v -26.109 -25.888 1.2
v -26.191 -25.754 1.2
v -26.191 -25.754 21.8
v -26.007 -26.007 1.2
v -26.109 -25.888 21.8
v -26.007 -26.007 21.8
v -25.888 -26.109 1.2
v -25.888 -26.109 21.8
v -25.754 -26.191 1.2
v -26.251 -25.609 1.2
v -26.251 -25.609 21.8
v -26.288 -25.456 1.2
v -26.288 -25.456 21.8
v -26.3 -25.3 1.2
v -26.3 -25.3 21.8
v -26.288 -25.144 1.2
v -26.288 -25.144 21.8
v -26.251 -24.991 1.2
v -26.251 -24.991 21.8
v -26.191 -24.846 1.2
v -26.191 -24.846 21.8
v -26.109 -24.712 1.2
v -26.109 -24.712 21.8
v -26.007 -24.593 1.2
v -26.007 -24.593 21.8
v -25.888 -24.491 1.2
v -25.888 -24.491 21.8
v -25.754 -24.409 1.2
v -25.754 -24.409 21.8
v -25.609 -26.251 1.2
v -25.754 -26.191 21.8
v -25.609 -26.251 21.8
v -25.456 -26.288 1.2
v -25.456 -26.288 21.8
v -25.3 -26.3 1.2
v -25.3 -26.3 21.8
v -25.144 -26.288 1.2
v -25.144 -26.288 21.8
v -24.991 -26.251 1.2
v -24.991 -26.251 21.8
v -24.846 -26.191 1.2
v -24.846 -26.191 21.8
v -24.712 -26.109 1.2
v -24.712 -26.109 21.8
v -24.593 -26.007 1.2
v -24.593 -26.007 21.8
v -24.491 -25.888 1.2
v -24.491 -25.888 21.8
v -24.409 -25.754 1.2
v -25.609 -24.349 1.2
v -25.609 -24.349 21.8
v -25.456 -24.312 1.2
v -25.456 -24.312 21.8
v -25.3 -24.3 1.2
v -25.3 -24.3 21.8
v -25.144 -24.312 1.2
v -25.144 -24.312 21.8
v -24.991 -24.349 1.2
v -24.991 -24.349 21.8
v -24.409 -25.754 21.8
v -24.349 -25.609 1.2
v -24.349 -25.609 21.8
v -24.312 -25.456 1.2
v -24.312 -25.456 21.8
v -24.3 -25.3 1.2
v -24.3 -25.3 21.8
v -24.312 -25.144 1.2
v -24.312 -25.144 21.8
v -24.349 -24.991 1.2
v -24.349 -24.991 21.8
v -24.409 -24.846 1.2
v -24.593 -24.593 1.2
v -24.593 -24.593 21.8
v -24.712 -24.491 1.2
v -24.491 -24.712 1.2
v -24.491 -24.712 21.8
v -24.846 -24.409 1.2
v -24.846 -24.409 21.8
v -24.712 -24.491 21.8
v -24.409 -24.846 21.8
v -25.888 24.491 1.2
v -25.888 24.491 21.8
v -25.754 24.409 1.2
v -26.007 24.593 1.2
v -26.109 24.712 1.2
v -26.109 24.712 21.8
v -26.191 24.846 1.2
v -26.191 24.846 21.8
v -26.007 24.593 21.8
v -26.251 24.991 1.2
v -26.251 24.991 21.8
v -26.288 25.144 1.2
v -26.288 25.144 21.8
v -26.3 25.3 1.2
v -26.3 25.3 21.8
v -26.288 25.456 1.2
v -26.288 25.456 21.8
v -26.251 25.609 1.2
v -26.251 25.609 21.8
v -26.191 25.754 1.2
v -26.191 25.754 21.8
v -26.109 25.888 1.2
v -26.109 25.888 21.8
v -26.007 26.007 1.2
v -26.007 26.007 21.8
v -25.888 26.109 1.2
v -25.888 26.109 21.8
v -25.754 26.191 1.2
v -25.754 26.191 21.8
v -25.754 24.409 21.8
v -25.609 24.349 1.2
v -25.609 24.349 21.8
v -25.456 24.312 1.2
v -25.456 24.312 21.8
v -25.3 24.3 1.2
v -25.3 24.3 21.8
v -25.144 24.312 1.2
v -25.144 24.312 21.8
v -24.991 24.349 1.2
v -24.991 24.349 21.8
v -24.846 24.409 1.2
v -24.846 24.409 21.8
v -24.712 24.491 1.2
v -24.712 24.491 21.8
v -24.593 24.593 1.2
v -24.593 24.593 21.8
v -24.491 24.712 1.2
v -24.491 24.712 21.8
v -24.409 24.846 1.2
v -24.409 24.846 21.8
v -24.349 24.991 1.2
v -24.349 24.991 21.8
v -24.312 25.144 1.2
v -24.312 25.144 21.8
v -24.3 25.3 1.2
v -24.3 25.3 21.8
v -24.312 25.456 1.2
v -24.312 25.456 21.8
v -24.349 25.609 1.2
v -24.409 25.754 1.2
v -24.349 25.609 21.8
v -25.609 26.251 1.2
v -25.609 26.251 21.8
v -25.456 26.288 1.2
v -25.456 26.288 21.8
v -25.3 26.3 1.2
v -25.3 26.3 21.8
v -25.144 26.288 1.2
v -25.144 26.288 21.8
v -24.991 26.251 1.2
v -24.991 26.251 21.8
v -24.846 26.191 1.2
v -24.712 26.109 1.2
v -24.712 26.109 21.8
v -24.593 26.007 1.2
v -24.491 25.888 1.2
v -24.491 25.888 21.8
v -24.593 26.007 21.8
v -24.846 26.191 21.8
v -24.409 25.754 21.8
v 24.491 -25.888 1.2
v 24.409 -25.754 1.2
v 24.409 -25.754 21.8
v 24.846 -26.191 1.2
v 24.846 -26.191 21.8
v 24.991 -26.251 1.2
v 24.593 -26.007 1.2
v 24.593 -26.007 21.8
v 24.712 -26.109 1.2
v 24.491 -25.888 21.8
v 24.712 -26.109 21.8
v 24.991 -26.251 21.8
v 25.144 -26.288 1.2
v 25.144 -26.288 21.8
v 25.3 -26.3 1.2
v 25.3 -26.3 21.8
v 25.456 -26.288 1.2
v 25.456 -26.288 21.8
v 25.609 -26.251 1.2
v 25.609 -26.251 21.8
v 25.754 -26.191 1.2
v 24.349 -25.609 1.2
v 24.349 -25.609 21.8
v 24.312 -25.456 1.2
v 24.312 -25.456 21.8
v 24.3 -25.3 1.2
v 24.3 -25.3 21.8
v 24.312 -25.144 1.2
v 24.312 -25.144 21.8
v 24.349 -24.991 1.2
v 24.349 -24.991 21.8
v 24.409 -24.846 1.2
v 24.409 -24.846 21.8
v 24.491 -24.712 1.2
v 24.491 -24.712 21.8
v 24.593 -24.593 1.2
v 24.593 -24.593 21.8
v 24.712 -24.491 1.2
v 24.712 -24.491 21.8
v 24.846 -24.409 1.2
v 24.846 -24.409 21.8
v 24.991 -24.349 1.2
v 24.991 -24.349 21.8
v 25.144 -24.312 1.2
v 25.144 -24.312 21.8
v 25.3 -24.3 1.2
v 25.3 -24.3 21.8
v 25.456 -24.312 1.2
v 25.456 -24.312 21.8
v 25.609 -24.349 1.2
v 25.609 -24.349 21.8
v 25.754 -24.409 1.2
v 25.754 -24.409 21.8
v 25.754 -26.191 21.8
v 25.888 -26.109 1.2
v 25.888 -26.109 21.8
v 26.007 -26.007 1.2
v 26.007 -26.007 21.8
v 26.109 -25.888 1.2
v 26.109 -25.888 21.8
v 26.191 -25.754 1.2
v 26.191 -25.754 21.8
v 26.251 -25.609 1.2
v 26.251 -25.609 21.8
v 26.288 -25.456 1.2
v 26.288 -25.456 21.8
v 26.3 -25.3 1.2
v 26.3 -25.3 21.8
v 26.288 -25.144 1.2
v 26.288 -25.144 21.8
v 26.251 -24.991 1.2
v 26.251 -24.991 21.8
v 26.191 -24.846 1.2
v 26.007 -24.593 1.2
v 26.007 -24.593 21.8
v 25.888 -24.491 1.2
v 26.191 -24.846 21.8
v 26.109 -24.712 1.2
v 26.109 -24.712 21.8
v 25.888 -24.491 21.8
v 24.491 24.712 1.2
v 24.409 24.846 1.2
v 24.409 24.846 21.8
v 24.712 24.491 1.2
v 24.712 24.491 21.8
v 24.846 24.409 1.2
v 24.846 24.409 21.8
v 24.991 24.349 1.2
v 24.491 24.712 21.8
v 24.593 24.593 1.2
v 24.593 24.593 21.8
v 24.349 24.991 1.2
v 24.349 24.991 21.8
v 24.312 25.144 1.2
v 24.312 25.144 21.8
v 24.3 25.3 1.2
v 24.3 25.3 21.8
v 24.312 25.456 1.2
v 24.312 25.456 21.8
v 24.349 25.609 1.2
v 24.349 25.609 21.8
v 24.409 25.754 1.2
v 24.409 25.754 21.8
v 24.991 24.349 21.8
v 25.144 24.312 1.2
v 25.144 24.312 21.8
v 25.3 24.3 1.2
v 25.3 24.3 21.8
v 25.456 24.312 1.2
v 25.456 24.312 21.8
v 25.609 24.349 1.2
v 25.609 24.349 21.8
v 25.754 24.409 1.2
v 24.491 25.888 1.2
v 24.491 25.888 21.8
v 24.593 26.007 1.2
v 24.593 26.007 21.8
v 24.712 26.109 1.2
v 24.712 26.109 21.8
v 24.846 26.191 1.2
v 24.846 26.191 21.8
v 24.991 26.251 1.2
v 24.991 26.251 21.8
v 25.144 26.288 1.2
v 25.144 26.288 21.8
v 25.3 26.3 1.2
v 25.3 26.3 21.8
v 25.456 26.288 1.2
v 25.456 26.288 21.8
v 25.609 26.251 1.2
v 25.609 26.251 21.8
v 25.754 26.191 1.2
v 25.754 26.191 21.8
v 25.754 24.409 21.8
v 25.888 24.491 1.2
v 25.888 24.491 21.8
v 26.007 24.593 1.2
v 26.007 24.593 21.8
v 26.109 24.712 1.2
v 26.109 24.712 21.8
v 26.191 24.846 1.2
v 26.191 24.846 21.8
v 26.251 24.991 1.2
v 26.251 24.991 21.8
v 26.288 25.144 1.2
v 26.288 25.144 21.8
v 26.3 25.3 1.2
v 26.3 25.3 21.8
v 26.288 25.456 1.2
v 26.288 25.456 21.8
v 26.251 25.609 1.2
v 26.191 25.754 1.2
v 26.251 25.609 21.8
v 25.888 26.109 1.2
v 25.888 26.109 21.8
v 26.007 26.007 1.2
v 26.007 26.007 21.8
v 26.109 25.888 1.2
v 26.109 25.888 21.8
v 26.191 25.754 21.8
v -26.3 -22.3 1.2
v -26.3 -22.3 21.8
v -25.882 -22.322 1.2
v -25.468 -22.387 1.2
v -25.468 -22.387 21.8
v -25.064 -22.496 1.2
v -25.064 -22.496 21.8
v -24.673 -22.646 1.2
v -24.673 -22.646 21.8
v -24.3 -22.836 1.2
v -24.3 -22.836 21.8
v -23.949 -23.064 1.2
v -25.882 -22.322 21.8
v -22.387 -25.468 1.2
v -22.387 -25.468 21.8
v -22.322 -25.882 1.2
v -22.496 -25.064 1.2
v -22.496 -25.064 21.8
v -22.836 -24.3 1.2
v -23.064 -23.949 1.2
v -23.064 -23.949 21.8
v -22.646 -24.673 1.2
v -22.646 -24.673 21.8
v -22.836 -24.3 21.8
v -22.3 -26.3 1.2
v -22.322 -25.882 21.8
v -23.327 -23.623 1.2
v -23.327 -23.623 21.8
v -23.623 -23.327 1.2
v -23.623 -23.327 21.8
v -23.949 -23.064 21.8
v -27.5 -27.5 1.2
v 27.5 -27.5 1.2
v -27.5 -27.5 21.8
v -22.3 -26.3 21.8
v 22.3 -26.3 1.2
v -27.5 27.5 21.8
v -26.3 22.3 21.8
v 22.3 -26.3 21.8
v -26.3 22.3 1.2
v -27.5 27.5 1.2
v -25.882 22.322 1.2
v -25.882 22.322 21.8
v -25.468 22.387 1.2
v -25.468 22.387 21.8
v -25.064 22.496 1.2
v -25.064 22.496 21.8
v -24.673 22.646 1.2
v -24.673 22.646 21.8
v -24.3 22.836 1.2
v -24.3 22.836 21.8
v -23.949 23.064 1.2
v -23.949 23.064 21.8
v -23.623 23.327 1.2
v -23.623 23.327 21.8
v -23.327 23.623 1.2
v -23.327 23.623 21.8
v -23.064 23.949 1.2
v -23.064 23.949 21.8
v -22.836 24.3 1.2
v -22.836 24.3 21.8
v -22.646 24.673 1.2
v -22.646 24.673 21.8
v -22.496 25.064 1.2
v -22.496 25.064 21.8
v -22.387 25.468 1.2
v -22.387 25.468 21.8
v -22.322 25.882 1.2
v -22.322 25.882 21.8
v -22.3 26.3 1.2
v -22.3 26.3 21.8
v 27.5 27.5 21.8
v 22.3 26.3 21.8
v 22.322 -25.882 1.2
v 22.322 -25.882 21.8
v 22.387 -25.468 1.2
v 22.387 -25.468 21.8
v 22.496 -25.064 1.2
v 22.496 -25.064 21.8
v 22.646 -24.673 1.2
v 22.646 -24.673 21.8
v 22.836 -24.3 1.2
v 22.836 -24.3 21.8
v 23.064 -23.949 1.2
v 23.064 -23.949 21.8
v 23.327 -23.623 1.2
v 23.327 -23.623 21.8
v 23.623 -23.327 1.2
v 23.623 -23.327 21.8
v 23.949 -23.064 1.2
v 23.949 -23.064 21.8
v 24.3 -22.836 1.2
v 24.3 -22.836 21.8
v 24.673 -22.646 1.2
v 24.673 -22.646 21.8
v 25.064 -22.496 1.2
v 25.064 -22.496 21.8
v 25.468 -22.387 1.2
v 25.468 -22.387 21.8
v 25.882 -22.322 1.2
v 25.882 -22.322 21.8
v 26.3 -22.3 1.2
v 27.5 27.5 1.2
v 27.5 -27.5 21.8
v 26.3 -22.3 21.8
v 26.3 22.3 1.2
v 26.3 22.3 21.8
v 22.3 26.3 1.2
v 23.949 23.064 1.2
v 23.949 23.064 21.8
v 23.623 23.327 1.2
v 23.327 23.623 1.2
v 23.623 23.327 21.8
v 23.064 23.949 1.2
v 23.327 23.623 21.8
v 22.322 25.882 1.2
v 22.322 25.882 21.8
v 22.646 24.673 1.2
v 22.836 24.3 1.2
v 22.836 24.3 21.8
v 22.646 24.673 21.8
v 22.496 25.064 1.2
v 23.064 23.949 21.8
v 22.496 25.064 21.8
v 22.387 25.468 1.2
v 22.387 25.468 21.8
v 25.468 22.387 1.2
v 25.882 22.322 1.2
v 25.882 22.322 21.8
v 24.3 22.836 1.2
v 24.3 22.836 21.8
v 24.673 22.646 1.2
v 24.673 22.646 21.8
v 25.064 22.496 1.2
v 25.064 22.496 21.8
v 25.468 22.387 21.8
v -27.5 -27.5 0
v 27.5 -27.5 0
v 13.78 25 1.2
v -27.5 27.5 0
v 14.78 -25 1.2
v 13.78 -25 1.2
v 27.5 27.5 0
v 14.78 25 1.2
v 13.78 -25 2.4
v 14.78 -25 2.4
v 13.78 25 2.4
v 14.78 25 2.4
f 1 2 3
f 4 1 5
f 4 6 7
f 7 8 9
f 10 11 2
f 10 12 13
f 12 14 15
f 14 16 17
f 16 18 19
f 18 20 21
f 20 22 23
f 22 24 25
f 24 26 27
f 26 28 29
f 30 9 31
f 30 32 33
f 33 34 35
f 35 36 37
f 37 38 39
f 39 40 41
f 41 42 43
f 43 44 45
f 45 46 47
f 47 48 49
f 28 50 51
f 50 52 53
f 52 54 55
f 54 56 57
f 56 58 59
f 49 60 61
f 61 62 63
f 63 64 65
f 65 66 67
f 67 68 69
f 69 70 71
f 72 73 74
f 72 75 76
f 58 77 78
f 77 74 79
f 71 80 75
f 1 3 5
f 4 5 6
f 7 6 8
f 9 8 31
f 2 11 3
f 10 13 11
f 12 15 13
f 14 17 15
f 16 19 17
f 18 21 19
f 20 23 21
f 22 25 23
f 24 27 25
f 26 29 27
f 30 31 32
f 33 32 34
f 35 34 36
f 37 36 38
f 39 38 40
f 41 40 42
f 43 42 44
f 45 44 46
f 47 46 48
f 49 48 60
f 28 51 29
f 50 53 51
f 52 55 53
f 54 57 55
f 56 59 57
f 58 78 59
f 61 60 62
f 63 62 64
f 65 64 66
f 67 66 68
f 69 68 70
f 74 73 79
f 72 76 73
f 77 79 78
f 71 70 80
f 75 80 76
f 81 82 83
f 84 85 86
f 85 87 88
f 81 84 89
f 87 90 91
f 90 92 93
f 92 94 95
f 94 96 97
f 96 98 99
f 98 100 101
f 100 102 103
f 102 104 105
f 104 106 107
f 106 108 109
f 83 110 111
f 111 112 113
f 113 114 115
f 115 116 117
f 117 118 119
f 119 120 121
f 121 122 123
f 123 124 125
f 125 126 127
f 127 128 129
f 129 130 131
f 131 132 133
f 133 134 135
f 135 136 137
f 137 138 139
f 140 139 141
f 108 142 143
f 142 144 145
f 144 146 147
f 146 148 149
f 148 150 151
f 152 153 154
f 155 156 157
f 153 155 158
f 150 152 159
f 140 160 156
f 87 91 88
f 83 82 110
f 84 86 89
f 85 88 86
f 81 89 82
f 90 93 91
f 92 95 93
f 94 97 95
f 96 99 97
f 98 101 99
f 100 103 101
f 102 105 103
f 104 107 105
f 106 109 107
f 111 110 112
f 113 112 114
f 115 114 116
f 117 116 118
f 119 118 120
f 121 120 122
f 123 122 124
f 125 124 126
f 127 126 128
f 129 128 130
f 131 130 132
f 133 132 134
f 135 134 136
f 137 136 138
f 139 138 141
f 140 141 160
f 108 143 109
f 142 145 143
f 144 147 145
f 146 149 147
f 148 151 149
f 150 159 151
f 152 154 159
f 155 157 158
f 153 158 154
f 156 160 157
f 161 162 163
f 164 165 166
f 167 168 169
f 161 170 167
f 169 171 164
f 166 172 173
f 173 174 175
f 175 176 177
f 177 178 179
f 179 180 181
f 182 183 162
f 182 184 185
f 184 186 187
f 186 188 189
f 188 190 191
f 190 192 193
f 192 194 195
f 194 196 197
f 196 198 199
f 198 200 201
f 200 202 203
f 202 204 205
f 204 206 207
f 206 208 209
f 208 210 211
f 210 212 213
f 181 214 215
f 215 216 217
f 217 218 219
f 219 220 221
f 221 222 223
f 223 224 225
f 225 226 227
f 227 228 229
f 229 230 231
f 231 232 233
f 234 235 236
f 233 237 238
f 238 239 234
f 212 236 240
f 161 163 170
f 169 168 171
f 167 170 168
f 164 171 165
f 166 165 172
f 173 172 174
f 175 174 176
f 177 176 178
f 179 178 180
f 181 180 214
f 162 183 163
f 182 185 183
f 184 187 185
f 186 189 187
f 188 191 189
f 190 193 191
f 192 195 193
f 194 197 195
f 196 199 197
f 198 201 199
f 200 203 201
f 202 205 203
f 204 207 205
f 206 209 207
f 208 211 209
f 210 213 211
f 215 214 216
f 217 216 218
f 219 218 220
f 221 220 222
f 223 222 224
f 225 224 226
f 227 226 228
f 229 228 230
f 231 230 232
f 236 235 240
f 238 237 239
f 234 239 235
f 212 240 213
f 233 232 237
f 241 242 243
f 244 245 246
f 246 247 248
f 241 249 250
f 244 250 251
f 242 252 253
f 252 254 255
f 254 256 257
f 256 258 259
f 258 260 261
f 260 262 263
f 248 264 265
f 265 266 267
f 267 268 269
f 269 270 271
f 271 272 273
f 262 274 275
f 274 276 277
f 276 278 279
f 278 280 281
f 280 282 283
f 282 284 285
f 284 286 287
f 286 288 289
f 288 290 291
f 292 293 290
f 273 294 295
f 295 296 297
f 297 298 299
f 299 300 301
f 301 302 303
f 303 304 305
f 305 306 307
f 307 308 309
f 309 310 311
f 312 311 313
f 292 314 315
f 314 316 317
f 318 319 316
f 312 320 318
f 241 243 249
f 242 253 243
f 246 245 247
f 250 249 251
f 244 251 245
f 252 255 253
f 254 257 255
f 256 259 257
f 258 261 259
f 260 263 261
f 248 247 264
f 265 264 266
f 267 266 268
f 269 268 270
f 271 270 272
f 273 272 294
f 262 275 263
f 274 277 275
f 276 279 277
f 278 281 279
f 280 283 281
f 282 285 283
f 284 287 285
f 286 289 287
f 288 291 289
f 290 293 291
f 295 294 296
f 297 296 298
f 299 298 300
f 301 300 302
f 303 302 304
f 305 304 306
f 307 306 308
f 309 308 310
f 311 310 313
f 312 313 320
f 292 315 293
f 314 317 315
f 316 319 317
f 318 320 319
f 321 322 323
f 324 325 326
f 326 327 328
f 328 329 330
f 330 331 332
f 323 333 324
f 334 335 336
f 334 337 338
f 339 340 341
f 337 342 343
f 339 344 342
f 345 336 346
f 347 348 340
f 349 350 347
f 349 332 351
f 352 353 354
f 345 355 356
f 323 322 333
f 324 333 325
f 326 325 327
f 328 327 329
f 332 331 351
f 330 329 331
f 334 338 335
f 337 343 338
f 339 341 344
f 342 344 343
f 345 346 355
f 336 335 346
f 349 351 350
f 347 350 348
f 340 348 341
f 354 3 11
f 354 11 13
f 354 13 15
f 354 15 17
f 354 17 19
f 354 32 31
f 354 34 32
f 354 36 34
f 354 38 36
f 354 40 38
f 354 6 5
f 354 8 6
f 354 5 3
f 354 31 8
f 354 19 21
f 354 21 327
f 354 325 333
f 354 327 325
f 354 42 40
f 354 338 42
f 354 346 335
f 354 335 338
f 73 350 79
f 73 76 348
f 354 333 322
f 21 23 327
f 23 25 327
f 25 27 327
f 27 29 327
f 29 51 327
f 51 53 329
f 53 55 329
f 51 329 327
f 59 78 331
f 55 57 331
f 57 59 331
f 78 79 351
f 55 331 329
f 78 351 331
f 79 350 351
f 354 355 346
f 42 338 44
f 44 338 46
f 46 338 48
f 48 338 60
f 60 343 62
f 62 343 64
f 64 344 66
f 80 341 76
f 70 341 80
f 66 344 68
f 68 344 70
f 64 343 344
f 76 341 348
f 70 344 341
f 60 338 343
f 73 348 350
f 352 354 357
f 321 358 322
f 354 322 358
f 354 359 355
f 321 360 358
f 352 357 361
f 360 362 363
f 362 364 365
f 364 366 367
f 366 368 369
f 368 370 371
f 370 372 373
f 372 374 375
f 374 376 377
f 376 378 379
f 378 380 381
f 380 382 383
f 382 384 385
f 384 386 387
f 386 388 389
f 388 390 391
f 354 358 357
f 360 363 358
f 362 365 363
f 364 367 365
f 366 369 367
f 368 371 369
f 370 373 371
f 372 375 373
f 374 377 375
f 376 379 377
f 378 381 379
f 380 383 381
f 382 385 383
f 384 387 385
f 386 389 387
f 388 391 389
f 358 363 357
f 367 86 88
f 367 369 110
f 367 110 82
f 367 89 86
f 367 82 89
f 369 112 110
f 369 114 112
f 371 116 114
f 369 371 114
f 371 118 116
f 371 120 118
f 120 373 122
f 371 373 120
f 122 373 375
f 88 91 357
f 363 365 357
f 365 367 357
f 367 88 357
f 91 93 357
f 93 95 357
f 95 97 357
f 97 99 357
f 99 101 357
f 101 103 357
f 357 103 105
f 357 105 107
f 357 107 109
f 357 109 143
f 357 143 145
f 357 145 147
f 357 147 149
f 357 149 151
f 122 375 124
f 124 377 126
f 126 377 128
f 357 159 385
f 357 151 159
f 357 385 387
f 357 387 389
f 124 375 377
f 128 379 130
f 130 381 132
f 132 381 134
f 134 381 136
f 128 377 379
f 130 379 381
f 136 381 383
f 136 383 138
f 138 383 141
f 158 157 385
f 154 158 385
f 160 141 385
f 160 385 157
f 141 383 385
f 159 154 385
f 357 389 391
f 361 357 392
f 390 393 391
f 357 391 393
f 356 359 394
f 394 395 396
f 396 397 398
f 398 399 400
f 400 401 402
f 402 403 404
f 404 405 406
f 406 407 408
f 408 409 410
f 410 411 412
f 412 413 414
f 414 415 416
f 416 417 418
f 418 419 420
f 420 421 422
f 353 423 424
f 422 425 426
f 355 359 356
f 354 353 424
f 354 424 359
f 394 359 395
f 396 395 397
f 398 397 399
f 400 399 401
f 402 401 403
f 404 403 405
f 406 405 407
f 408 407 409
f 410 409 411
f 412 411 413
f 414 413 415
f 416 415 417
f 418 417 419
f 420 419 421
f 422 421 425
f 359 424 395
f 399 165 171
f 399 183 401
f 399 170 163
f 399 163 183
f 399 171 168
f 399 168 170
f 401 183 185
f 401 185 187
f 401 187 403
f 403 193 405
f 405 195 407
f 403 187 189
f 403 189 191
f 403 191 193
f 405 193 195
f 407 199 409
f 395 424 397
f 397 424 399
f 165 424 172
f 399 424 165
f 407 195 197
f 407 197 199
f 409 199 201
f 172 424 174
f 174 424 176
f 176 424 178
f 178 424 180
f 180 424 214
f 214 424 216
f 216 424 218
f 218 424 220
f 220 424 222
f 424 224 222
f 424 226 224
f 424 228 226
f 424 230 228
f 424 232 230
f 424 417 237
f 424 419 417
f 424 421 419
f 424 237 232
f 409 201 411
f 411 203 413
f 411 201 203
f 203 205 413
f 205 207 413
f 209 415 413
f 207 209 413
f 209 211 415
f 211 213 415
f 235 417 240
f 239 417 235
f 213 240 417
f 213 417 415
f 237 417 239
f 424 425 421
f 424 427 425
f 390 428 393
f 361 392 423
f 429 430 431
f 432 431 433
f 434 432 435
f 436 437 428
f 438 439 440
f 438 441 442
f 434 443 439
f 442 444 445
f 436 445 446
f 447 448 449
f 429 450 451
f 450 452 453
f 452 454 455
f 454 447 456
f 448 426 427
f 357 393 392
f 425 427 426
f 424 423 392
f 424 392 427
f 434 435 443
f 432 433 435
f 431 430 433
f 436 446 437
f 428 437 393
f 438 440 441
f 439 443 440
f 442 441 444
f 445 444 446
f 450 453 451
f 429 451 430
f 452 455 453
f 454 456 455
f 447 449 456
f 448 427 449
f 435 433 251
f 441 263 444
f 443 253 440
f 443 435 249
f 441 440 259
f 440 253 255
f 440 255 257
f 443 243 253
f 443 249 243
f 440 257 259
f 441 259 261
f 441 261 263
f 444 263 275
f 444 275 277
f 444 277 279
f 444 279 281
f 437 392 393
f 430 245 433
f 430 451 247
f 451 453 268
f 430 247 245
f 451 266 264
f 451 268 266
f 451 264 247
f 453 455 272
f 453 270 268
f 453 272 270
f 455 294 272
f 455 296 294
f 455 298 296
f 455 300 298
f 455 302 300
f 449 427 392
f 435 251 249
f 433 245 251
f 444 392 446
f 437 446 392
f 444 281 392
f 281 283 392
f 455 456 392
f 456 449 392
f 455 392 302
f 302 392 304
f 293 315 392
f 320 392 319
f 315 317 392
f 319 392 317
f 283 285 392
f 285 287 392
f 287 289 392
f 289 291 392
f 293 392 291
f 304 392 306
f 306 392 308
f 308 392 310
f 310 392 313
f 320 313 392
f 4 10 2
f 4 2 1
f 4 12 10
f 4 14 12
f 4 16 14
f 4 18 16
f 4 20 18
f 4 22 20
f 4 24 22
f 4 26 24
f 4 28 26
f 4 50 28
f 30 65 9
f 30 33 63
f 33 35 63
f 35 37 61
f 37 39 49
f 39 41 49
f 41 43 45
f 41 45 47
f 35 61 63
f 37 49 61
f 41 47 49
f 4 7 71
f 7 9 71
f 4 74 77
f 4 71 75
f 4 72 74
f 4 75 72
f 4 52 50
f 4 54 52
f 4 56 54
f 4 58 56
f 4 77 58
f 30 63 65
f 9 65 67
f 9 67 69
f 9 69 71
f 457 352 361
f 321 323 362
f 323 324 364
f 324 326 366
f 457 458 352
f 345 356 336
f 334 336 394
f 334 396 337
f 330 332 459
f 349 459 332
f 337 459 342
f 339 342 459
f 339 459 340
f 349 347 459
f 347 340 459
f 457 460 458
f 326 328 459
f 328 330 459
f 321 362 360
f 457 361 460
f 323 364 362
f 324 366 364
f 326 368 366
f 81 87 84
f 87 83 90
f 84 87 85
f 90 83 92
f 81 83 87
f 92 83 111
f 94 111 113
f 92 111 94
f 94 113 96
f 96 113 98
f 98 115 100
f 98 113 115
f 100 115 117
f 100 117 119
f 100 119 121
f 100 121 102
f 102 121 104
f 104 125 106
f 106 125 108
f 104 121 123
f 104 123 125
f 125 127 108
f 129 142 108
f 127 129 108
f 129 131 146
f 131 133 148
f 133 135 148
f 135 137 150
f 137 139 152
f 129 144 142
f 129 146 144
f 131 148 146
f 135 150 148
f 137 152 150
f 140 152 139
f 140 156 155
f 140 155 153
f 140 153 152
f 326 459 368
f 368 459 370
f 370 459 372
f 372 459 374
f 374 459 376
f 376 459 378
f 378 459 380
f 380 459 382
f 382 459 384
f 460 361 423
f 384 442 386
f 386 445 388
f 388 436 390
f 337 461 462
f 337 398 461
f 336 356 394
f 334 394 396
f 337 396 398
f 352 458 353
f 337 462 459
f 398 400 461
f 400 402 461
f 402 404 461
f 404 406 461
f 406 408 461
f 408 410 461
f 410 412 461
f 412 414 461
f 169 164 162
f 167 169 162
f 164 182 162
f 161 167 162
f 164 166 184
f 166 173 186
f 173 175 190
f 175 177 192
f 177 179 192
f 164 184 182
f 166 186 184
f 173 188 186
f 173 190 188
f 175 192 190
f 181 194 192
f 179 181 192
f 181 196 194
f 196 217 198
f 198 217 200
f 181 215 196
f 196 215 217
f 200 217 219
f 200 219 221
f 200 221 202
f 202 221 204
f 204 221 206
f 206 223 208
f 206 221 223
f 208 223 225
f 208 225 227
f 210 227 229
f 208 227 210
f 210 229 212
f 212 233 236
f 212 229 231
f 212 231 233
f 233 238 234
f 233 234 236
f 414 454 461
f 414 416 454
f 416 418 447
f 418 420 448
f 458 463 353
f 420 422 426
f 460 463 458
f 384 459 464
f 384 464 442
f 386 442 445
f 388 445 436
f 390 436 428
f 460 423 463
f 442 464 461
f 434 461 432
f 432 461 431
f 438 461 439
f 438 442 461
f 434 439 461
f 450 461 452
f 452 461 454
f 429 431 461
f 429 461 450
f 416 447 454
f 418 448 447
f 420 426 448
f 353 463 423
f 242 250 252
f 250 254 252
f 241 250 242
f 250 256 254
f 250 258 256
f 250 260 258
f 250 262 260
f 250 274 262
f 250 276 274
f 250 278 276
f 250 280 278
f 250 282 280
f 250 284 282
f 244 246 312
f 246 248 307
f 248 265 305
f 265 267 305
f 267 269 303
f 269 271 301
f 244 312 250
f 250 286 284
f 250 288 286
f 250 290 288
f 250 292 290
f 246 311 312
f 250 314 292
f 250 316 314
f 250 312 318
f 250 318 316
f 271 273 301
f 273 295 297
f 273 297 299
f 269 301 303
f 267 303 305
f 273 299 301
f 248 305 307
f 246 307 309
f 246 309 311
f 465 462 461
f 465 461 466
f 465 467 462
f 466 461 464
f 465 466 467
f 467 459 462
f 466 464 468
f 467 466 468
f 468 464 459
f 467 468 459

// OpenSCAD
// ============================================================
// 플랫폼 v2 - 밑면 평면도(XY, 위에서 본 모습)
// 55mm x 55mm 정사각형, 사방 1.2mm 테두리, 안쪽에 세로 립(1mm 두께) 배치.
// ============================================================

module platform_v2_bottom() {
    face_size = 55;   // 면의 가로/세로 (정사각형)
    housing_t = 1.2;  // 하우징 두께 (사방 테두리)

    rib_w      = 1;      // 세로 립 두께 (X방향)
    left_w     = 40.08;  // 안쪽 왼쪽 구간 폭 (내부 왼쪽 테두리 - 립)
    right_w    = 11.52;  // 안쪽 오른쪽 구간 폭 (립 - 내부 오른쪽 테두리)

    rib_gap    = 1.3;    // 립 위/아래 빈 공간 (안쪽 테두리 기준)
    rib_len    = 50;     // 세로 립 길이

    rib_z      = 1.2;    // 립의 Z방향 돌출 깊이 (바닥판 위에 추가)

    inner_size = face_size - 2 * housing_t; // 안쪽 치수 (52.6mm)

    echo("[PlatformV2] inner_size check =", inner_size,
         " (should be", left_w + rib_w + right_w, ")");
    echo("[PlatformV2] inner_size check(Y) =", inner_size,
         " (should be", rib_gap + rib_len + rib_gap, ")");

    // --- X축 경계 (왼쪽 -> 오른쪽, 중심 원점) ---
    x_left       = -face_size / 2;
    x_inner_l    = x_left + housing_t;      // 안쪽 왼쪽 테두리
    x_rib_l      = x_inner_l + left_w;      // 립 왼쪽 면
    x_rib_r      = x_rib_l + rib_w;         // 립 오른쪽 면
    x_inner_r    = x_rib_r + right_w;       // 안쪽 오른쪽 테두리 (face_size/2 - housing_t 와 같아야 함)

    // --- Y축 경계 (립 길이 방향, 중심 원점) ---
    y_top        = face_size / 2;
    y_inner_top  = y_top - housing_t;       // 안쪽 위쪽 테두리
    y_rib_top    = y_inner_top - rib_gap;   // 립 윗면
    y_rib_bottom = y_rib_top - rib_len;     // 립 아랫면 (y_inner_bottom + rib_gap 와 같아야 함)
    y_inner_bottom = -face_size / 2 + housing_t; // 안쪽 아래쪽 테두리

    rib_center_x = (x_rib_l + x_rib_r) / 2;
    rib_center_y = (y_rib_top + y_rib_bottom) / 2;

    echo("[PlatformV2] x_inner_r check =", x_inner_r, " (should be", face_size / 2 - housing_t, ")");
    echo("[PlatformV2] rib_bottom check =", y_rib_bottom, " (should be", y_inner_bottom + rib_gap, ")");
    echo("[PlatformV2] rib center =", rib_center_x, rib_center_y);

    // 바닥판 (면 전체, 실제 3D, 두께 1.2mm)
    color("gray")
        linear_extrude(height = housing_t)
            square([face_size, face_size], center = true);

    // 세로 립 (실제 3D, 바닥판 위에 Z 깊이 1.2mm 추가)
    color("SteelBlue")
        translate([rib_center_x, rib_center_y, housing_t])
            linear_extrude(height = rib_z)
                square([rib_w, rib_len], center = true);

    // 사방 옆면 벽 (실제 3D, 바닥판 위에 Z방향으로 20.6mm 쌓아 올림)
    // 안쪽 네 모서리(원래 직각 코너)에 반지름 4mm 부채꼴 보강재를 덧붙임
    // (안쪽 면 기준 직선 구간 44.6mm = 52.6 - 2*4 만 남고, 모서리 쪽은 보강재로 채워짐)
    // 그 보강재 안에서, 벽면 두 곳으로부터 각각 1.2mm 여백을 두고 지름 2mm 나사 구멍을 뚫음
    wall_h    = 20.6;  // 벽 높이
    fillet_r  = 4;     // 모서리 보강재 반지름 (안쪽 모서리 기준, 44.6mm 직선구간과 일치)
    screw_d   = 2;     // 나사 구멍 지름
    hole_gap  = 1.2;   // 바깥쪽 모서리 - 구멍 중심까지의 대각선 각 축 성분 (구멍 중심 = 바깥 모서리에서 2.2, 2.2)
    hole_off  = face_size / 2 - hole_gap - screw_d / 2; // 바깥쪽 모서리 기준 중심까지 거리(=25.3mm)
    corner_off = inner_size / 2; // 안쪽 모서리(원래 직각 코너) 위치 (=26.3mm, 보강재 형상 기준)

    inner_straight = inner_size - 2 * fillet_r; // 보강재 사이 직선 구간 (44.6mm)

    echo("[PlatformV2] inner_straight check =", inner_straight, " (should be 44.6)");
    echo("[PlatformV2] hole_off =", hole_off);

    difference() {
        color("orange")
            translate([0, 0, housing_t])
                linear_extrude(height = wall_h)
                    union() {
                        difference() {
                            square([face_size, face_size], center = true);
                            square([inner_size, inner_size], center = true);
                        }
                        // 모서리 보강재 (안쪽 코너에서 반지름 4mm 부채꼴, 캐비티 쪽으로 채움)
                        for (sx = [-1, 1])
                            for (sy = [-1, 1])
                                intersection() {
                                    translate([sx * corner_off, sy * corner_off])
                                        circle(r = fillet_r, $fn = 60);
                                    square([inner_size, inner_size], center = true);
                                }
                    }

        for (sx = [-1, 1])
            for (sy = [-1, 1])
                translate([sx * hole_off, sy * hole_off, housing_t - 0.1])
                    cylinder(d = screw_d, h = wall_h + 0.2, $fn = 40);
    }
}

platform_v2_bottom();
